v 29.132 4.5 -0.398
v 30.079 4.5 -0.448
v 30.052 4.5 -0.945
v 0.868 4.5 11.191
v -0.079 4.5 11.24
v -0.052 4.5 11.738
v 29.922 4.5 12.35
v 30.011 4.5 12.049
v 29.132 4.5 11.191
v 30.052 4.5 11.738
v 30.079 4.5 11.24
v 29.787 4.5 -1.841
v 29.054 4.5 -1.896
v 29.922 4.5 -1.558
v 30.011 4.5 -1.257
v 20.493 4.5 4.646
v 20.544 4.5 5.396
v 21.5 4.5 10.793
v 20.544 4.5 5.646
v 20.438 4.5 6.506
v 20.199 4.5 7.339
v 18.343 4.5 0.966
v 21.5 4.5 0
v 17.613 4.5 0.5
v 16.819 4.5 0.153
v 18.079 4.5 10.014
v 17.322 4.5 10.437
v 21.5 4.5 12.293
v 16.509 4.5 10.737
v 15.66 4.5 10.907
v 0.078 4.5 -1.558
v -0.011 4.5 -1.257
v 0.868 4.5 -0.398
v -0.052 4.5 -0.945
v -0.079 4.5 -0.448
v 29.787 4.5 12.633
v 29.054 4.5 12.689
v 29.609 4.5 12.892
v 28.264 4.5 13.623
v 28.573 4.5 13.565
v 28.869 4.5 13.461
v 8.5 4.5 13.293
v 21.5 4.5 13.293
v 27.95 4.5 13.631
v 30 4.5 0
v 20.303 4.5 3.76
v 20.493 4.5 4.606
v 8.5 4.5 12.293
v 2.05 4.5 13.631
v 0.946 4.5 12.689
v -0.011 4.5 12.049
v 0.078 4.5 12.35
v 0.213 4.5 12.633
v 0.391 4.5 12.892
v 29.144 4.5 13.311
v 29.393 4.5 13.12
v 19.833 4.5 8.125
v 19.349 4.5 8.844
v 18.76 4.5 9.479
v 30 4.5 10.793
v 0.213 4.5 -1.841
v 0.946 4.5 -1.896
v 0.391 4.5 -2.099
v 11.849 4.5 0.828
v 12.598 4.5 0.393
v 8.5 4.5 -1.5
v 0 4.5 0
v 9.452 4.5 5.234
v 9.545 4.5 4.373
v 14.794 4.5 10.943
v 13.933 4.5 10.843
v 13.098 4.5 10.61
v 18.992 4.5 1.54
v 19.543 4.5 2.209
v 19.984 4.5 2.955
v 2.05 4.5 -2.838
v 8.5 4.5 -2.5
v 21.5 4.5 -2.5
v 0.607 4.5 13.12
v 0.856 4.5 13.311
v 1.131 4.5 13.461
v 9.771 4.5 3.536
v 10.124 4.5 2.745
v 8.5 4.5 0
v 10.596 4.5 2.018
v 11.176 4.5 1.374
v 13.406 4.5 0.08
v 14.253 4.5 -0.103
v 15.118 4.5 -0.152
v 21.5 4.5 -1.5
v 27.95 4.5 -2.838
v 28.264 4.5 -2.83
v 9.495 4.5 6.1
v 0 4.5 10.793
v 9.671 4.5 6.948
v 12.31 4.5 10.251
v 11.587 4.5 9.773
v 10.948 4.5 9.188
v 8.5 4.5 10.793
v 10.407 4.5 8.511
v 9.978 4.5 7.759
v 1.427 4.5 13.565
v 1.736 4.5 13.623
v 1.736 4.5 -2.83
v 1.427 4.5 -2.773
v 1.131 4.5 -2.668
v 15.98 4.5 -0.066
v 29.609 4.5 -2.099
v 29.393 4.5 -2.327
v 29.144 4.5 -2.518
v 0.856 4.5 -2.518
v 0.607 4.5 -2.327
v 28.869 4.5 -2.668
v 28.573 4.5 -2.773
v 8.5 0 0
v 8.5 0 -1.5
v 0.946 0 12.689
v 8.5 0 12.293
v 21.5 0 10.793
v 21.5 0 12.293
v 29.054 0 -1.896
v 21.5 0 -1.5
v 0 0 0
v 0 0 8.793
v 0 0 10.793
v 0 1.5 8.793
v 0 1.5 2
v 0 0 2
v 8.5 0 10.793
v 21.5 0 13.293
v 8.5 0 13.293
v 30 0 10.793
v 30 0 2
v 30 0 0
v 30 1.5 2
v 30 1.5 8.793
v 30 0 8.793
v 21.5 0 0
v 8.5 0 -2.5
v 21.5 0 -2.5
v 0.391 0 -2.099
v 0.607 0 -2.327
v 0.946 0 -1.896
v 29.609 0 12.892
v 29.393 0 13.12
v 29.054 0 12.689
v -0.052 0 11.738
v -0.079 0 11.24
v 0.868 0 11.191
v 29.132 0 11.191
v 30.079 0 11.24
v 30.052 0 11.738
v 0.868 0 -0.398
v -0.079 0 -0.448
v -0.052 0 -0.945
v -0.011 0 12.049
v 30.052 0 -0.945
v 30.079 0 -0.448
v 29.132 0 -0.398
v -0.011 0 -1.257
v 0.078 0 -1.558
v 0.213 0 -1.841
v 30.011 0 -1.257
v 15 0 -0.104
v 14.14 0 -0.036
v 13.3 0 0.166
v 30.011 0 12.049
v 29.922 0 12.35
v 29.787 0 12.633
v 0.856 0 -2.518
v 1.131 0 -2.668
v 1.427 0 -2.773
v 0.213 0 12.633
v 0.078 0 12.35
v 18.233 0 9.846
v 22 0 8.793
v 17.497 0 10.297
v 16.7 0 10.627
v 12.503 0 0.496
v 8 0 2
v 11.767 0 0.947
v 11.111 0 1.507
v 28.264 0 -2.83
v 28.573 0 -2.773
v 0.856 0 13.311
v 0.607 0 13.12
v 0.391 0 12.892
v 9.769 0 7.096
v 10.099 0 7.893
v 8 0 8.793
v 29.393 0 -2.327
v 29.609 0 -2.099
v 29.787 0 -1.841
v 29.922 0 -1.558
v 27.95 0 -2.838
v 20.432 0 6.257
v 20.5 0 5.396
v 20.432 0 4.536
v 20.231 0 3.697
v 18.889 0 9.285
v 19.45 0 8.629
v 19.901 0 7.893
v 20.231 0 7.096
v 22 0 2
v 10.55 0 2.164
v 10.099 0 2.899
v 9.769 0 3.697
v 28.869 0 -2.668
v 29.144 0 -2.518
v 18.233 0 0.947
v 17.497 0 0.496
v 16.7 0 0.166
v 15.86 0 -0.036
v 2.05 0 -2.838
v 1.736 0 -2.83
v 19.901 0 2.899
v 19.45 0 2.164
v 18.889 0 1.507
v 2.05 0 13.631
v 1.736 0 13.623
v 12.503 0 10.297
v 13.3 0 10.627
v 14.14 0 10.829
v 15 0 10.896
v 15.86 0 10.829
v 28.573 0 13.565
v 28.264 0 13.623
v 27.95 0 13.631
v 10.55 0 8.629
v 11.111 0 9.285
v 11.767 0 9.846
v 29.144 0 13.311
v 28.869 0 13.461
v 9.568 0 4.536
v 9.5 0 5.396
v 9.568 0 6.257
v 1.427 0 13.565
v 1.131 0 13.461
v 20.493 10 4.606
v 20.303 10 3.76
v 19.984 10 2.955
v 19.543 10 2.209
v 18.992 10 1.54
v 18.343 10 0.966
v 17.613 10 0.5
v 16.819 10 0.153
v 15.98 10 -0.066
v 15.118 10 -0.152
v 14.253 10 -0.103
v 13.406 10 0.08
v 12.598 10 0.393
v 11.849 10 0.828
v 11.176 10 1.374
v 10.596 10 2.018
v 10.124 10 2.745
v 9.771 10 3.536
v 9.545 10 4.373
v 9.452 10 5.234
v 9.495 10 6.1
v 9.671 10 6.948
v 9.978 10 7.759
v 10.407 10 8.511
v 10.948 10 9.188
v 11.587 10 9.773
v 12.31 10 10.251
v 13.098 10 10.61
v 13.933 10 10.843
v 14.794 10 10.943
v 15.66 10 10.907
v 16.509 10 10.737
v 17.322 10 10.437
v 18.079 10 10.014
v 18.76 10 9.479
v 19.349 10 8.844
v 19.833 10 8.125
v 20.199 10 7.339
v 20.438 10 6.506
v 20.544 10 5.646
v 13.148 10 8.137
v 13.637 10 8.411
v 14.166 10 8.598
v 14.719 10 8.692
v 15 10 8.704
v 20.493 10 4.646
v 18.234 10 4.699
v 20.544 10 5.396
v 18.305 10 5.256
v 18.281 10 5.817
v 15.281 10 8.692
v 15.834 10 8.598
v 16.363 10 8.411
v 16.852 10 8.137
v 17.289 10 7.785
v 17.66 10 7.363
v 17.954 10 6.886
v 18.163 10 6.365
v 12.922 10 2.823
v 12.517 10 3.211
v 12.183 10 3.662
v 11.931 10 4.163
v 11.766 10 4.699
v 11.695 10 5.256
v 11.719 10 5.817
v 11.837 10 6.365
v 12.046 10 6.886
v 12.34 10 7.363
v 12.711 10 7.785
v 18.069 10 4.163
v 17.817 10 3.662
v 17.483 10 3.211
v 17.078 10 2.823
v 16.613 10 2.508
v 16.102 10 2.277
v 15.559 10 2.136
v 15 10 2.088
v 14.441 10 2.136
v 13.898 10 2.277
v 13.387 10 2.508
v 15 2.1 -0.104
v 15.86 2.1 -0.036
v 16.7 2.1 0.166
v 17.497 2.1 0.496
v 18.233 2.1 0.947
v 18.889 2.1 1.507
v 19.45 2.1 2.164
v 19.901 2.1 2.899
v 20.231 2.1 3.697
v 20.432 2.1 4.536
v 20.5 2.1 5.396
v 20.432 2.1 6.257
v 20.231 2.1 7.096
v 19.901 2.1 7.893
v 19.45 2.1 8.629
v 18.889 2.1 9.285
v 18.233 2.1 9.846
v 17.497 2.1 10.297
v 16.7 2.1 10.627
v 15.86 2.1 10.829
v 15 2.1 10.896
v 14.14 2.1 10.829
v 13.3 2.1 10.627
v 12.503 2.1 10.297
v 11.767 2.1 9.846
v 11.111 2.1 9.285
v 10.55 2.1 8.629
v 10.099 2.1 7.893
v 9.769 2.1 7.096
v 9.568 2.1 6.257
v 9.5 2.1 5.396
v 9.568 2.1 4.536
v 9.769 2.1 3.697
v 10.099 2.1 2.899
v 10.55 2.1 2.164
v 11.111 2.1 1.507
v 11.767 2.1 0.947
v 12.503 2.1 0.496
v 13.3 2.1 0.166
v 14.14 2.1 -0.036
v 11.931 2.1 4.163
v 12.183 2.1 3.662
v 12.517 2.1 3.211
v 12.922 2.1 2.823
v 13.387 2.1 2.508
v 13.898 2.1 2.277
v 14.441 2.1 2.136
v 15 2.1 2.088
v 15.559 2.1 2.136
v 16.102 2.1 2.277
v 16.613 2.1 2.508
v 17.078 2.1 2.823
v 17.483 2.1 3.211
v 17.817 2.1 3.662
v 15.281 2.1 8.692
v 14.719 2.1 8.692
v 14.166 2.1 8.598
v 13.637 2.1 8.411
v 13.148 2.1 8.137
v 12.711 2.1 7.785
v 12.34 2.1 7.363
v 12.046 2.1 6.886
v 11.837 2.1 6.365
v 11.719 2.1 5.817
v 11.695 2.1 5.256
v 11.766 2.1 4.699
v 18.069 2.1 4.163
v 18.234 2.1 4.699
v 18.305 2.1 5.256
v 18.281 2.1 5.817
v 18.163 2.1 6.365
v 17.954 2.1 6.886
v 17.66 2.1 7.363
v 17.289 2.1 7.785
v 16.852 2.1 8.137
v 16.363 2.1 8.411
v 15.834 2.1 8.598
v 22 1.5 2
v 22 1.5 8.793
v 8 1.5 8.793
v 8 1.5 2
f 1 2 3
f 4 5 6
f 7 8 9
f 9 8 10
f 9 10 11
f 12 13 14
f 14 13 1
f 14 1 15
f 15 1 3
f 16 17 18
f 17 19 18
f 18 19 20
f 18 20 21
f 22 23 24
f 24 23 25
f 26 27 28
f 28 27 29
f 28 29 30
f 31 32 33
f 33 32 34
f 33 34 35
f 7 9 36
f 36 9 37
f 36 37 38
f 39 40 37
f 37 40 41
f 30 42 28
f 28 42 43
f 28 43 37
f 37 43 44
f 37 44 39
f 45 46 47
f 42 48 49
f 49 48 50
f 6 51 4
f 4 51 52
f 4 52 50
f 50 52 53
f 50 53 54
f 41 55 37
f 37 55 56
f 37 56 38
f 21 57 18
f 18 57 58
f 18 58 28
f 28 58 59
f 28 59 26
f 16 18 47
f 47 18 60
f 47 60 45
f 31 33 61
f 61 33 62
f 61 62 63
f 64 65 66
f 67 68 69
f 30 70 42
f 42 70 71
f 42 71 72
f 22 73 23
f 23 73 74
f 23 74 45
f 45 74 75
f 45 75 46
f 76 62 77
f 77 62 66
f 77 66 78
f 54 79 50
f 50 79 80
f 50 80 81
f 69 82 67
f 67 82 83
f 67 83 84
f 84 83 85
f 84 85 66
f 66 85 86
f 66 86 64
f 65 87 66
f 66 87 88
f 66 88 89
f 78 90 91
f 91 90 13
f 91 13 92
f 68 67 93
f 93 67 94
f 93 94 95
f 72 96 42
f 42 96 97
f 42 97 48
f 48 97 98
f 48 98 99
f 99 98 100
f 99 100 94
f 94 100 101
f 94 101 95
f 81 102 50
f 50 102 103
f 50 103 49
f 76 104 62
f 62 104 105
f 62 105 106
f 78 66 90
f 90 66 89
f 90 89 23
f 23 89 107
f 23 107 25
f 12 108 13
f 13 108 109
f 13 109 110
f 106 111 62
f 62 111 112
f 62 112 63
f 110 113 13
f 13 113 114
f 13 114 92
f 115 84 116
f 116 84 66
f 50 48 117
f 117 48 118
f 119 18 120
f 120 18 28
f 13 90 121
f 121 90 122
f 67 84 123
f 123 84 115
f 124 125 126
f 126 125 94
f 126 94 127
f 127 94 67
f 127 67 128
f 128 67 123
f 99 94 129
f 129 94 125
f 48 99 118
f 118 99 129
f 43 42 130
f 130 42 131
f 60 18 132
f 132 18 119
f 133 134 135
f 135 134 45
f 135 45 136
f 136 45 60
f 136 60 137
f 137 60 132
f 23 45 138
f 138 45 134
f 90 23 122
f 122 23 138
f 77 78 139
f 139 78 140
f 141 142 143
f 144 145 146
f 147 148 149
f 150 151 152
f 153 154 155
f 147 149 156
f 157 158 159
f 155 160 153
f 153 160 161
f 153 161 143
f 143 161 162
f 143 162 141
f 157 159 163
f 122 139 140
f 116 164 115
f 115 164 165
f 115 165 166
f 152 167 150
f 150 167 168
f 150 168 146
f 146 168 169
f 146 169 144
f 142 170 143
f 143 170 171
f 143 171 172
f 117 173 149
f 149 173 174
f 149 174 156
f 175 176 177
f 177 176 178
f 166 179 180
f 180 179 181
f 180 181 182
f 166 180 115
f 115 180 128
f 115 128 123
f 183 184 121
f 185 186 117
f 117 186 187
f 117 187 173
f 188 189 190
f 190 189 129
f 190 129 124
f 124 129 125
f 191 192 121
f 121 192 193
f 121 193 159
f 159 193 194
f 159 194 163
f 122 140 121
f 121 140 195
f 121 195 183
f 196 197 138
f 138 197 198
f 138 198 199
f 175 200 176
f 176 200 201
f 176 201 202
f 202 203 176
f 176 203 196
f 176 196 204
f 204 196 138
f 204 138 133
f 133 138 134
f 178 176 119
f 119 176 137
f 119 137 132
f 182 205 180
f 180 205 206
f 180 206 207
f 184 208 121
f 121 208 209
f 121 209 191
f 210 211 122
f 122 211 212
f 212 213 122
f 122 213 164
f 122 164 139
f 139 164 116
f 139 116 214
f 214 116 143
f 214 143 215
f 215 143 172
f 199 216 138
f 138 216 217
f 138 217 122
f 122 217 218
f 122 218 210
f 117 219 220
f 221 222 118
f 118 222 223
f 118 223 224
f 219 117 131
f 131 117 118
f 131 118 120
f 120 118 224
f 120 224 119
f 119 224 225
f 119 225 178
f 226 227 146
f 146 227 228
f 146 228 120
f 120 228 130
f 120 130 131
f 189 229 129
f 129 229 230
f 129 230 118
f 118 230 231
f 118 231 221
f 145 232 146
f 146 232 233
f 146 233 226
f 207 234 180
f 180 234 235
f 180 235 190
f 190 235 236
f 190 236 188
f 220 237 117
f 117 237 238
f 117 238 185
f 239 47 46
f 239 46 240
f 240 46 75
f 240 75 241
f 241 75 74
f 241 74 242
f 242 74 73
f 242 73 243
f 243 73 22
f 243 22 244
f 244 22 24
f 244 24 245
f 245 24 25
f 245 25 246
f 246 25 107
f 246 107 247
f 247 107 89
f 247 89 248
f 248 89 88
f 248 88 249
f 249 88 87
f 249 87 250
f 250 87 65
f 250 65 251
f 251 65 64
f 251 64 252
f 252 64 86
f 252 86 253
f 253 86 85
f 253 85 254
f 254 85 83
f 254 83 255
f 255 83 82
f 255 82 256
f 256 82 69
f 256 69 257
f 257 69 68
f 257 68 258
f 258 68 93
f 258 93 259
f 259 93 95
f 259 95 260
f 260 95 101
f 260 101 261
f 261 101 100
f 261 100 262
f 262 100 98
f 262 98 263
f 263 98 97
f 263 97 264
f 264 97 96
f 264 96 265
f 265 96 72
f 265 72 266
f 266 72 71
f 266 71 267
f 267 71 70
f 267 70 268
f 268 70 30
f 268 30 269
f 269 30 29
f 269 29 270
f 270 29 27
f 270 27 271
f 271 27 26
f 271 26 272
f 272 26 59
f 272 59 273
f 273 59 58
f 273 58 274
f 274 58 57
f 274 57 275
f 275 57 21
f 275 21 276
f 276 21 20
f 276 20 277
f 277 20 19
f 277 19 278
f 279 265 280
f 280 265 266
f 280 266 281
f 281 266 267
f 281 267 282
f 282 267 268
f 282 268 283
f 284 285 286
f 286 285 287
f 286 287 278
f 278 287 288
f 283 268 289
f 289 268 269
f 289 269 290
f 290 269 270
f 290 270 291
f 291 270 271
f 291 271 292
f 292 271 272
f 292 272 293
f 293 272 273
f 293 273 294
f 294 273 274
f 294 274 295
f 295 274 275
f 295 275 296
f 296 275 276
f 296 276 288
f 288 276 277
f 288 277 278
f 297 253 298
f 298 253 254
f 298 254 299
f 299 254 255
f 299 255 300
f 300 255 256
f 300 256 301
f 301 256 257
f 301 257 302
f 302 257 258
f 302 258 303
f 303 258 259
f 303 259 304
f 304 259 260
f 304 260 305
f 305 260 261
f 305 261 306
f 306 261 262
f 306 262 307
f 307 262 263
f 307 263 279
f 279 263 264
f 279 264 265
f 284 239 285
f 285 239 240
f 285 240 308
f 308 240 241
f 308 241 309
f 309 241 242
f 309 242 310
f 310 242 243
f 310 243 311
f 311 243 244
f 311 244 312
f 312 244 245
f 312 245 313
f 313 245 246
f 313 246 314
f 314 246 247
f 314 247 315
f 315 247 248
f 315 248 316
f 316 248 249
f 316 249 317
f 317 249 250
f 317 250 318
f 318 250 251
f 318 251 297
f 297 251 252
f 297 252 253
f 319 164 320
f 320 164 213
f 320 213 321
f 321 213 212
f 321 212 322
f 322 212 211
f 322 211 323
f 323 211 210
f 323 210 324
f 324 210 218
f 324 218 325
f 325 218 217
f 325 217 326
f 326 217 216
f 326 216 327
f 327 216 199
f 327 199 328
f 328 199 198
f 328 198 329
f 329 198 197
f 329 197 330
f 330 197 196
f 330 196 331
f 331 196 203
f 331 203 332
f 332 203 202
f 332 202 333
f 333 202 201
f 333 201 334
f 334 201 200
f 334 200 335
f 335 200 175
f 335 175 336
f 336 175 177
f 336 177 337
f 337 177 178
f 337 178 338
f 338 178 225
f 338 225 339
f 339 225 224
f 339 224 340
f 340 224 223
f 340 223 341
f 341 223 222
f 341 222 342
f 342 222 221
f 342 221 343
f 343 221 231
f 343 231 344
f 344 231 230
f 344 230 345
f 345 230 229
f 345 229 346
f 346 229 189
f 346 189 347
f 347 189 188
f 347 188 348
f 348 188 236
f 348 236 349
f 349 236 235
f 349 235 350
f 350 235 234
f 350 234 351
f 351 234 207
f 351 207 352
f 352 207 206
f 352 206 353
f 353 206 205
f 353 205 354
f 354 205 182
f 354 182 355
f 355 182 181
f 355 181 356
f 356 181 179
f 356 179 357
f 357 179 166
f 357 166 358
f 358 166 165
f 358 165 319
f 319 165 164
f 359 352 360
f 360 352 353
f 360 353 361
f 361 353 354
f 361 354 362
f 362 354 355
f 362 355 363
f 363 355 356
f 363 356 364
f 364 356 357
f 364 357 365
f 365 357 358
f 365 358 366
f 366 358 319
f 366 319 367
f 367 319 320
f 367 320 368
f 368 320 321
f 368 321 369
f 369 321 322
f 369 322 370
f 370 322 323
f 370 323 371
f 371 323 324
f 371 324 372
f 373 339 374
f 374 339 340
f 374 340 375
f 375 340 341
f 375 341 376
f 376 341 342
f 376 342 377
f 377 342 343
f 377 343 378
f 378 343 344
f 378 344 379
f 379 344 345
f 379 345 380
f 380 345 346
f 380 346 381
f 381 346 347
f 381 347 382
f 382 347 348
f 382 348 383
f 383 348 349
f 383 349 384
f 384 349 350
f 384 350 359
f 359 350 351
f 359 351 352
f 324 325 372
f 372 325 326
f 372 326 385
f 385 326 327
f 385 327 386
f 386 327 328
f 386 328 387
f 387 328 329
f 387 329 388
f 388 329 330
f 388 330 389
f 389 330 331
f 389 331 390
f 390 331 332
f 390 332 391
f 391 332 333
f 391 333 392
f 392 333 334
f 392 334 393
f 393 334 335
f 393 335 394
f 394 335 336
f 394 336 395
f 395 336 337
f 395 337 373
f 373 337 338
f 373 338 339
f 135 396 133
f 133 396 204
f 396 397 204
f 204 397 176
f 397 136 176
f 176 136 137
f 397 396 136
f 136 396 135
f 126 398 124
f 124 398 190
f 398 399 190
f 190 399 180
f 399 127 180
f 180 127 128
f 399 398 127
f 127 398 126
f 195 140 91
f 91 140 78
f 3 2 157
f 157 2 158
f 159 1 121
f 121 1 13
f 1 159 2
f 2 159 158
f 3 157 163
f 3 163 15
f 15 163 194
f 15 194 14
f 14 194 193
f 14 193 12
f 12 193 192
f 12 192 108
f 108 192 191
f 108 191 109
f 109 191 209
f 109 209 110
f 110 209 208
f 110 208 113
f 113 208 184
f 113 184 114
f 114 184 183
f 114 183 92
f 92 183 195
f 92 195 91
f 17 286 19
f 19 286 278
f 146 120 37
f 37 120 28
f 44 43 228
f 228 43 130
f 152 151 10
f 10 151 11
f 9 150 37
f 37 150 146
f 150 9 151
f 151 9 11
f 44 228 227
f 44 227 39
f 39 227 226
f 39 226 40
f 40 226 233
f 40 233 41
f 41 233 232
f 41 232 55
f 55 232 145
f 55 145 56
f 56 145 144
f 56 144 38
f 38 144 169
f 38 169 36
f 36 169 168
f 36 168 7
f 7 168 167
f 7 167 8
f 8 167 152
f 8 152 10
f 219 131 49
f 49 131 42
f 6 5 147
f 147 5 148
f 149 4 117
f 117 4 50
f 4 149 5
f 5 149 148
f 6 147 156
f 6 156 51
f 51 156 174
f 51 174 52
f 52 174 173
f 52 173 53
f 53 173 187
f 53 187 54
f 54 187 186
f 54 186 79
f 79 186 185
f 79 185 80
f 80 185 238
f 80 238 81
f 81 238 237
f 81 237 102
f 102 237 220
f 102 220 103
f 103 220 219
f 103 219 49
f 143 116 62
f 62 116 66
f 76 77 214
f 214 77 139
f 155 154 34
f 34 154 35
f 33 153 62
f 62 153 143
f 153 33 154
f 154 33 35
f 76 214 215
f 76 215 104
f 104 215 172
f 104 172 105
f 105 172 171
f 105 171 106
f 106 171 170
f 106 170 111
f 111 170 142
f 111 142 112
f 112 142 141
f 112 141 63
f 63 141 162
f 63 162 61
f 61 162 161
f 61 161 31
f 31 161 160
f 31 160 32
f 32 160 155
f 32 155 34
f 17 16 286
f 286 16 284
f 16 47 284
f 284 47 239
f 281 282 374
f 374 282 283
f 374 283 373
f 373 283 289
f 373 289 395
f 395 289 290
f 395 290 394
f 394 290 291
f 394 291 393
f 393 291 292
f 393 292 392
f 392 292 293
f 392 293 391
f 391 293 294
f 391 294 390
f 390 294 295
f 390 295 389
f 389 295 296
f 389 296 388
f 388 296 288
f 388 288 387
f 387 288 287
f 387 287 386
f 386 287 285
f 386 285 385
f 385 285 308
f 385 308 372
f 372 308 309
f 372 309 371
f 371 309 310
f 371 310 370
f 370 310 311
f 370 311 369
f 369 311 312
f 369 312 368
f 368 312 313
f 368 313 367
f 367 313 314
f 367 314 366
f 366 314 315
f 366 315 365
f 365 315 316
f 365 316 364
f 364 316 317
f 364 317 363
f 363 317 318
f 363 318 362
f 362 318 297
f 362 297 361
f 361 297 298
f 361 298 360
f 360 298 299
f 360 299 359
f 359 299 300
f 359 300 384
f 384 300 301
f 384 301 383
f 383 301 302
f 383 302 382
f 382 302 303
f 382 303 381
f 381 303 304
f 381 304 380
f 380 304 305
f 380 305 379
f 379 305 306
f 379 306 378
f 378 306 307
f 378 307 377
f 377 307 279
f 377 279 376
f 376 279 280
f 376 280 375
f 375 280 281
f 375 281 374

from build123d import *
from build123d.topology import SkipClean

# Parameters (mm, degrees)
BOSS_EXTRU_1_DEPTH       = 4.5
BOSS_EXTRU_2_DEPTH       = 5.5
ENL_V_MAT_EXTRU_3_DEPTH  = 2.1
ENL_V_START              = -13.1
ESQUISSE7_R              = 3
ENL_V_MAT_EXTRU_4_DEPTH  = 13.1
ESQUISSE18_W             = 8
ESQUISSE18_H             = 6.792682927
ENL_V_MAT_EXTRU_5_DEPTH  = 1.5
ESQUISSE19_W             = 8
ESQUISSE19_H             = 6.792682927
ENL_V_MAT_EXTRU_6_DEPTH  = 1.5
BOSS_EXTRU_11_DEPTH      = 4.5
ESQUISSE25_W             = 0.947664044
ESQUISSE25_H             = 4.5
BOSS_EXTRU_12_DEPTH      = 1.5
CONG_16_R                = 2
BOSS_EXTRU_16_DEPTH      = 1
ENL_V_MAT_EXTRU_7_DEPTH  = 0.25
CONG_16_OF_SYM_TRIE4_R   = 2
SYM_TRIE5_DEPTH          = 4.5
ESQUISSE34_W             = 0.75
ESQUISSE34_H             = 11.333514389
ENL_V_MAT_EXTRU_10_DEPTH = 36
ESQUISSE35_R             = 5.54436651
ESQUISSE35_R_2           = 3
BOSS_EXTRU_19_DEPTH      = 5.5
ESQUISSE36_W             = 0.010434814
ESQUISSE36_H             = 5.5
ENL_V_MAT_EXTRU_11_DEPTH = 0.25
BOSS_EXTRU_20_DEPTH      = 5.5
ESQUISSE38_W             = 0.005685697
ESQUISSE38_H             = 5.5
ENL_V_MAT_EXTRU_12_DEPTH = 36
ESQUISSE39_R             = 3.307933445
ENL_V_MAT_EXTRU_13_DEPTH = 5.5
ENL_V_START_2            = -36
ESQUISSE40_R             = 3.307933445
ENL_V_MAT_EXTRU_14_DEPTH = 36


with BuildPart() as part:
    # Esquisse1 → Boss.-Extru.1 (new body)
    with BuildSketch(Plane(origin=(0, 0, 0), x_dir=(1, 0, 0), z_dir=(0, 1, 0))):
        Polygon((21.5, 0), (21.5, 2.5), (8.5, 2.5), (8.5, 0), (0, 0), (0, -10.792682927), (8.5, -10.792682927), (8.5, -13.292682927), (21.5, -13.292682927), (21.5, -10.792682927), (30, -10.792682927), (30, 0), align=None)
    extrude(amount=BOSS_EXTRU_1_DEPTH)

    # Esquisse2 → Boss.-Extru.2 (add)
    with BuildSketch(Plane(origin=(0, 4.5, 0), x_dir=(1, 0, 0), z_dir=(0, 1, 0))):
        with BuildLine():
            ThreePointArc((20.55, -5.396341463), (16.884536839, -0.176090425), (10.729812288, -1.851204385))
            Line((10.729812288, -1.851204385), (12.691790426, -3.480051151))
            ThreePointArc((12.691790426, -3.480051151), (16.018668562, -2.574584145), (18, -5.396341463))
            ThreePointArc((18, -5.396341463), (17.821757318, -6.415010025), (17.308209574, -7.312631776))
            Line((17.308209574, -7.312631776), (19.270187712, -8.941478542))
            ThreePointArc((19.270187712, -8.941478542), (20.220251038, -7.280878303), (20.55, -5.396341463))
        make_face()
        with BuildLine():
            Line((12.691790426, -3.480051151), (10.729812288, -1.851204385))
            ThreePointArc((10.729812288, -1.851204385), (11.454862922, -9.666529176), (19.270187712, -8.941478542))
            Line((19.270187712, -8.941478542), (17.308209574, -7.312631776))
            ThreePointArc((17.308209574, -7.312631776), (13.083709687, -7.704551038), (12.691790426, -3.480051151))
        make_face()
        with BuildLine():
            ThreePointArc((20.55, -5.396341463), (16.884536839, -0.176090425), (10.729812288, -1.851204385))
            Line((10.729812288, -1.851204385), (12.691790426, -3.480051151))
            ThreePointArc((12.691790426, -3.480051151), (16.018668562, -2.574584145), (18, -5.396341463))
            ThreePointArc((18, -5.396341463), (17.821757318, -6.415010025), (17.308209574, -7.312631776))
            Line((17.308209574, -7.312631776), (19.270187712, -8.941478542))
            ThreePointArc((19.270187712, -8.941478542), (20.220251038, -7.280878303), (20.55, -5.396341463))
        make_face()
        with BuildLine():
            Line((12.691790426, -3.480051151), (10.729812288, -1.851204385))
            ThreePointArc((10.729812288, -1.851204385), (11.454862922, -9.666529176), (19.270187712, -8.941478542))
            Line((19.270187712, -8.941478542), (17.308209574, -7.312631776))
            ThreePointArc((17.308209574, -7.312631776), (13.083709687, -7.704551038), (12.691790426, -3.480051151))
        make_face()
    extrude(amount=BOSS_EXTRU_2_DEPTH)

    # Esquisse5 → Enlèv. mat.-Extru.3 (cut)
    with BuildSketch(Plane.XZ):
        with BuildLine():
            ThreePointArc((20.5, 5.396341463), (16.86755903, 10.569563213), (10.768282447, 8.90954037))
            Line((10.768282447, 8.90954037), (19.231717553, 1.883142557))
            ThreePointArc((19.231717553, 1.883142557), (20.17322175, 3.528782433), (20.5, 5.396341463))
        make_face()
        with BuildLine():
            Line((19.231717553, 1.883142557), (10.768282447, 8.90954037))
            ThreePointArc((10.768282447, 8.90954037), (11.486801094, 1.164623911), (19.231717553, 1.883142557))
        make_face()
        with BuildLine():
            ThreePointArc((20.5, 5.396341463), (16.86755903, 10.569563213), (10.768282447, 8.90954037))
            Line((10.768282447, 8.90954037), (19.231717553, 1.883142557))
            ThreePointArc((19.231717553, 1.883142557), (20.17322175, 3.528782433), (20.5, 5.396341463))
        make_face()
        with BuildLine():
            Line((19.231717553, 1.883142557), (10.768282447, 8.90954037))
            ThreePointArc((10.768282447, 8.90954037), (11.486801094, 1.164623911), (19.231717553, 1.883142557))
        make_face()
    extrude(amount=-ENL_V_MAT_EXTRU_3_DEPTH, mode=Mode.SUBTRACT)

    # Esquisse7 → Enlèv. mat.-Extru.4 (cut)
    with BuildSketch(Plane(origin=(0, 4.5, 0), x_dir=(1, 0, 0), z_dir=(0, 1, 0)).offset(ENL_V_START)):
        with Locations(Location((15, -5.396341463, 0), (0, 0, 90))):
            Circle(ESQUISSE7_R)
    extrude(amount=ENL_V_MAT_EXTRU_4_DEPTH, mode=Mode.SUBTRACT)

    # Esquisse18 → Enlèv. mat.-Extru.5 (cut)
    with BuildSketch(Plane.XZ):
        with Locations((26, 5.396341464)):
            Rectangle(ESQUISSE18_W, ESQUISSE18_H)
    extrude(amount=-ENL_V_MAT_EXTRU_5_DEPTH, mode=Mode.SUBTRACT)

    # Esquisse19 → Enlèv. mat.-Extru.6 (cut)
    with BuildSketch(Plane.XZ):
        with Locations((4, 5.396341464)):
            Rectangle(ESQUISSE19_W, ESQUISSE19_H)
    extrude(amount=-ENL_V_MAT_EXTRU_6_DEPTH, mode=Mode.SUBTRACT)

    # Esquisse23 → Boss.-Extru.11 (add)
    with BuildSketch(Plane(origin=(0, 4.5, 0), x_dir=(1, 0, 0), z_dir=(0, 1, 0))):
        Polygon((21.5, 2.5), (30, 2.945466124), (30, 1.945466124), (21.5, 1.5), align=None)
    boss_extru_11 = extrude(amount=-BOSS_EXTRU_11_DEPTH)

    # Esquisse25 → Boss.-Extru.12 (add)
    with BuildSketch(Plane(origin=(-0.019506723, 0, -0.372210441), x_dir=(0.998629534754574, 0, -0.05233595624294039), z_dir=(0.05233595624294039, 0, 0.9986295347545742))):
        with Locations((29.586871851, 2.25)):
            Rectangle(ESQUISSE25_W, ESQUISSE25_H)
    boss_extru_12 = extrude(amount=BOSS_EXTRU_12_DEPTH)

    # Congé16
    cong_16_edges = [part.edges().sort_by_distance(p)[0] for p in [
        (30, 2.25, -2.945466124),
    ]]
    fillet(cong_16_edges, radius=CONG_16_R)

    # Esquisse3D3 → Boss.-Extru.16 (add)
    with SkipClean():  # the faces are left unmerged after this step: merging them gives an invalid solid
        with BuildSketch(Plane(origin=(15, 4.5, 5.646341463), x_dir=(0.9055110385022749, 0.42432270638104186, 1.6236855905047217e-15), z_dir=(0, 0, -1))):
            Polygon((0, 0), (21.900590549, 10.262622385), (26.709658048, 0), (4.809067498, -10.262622385), align=None)
        extrude(amount=BOSS_EXTRU_16_DEPTH)

    # Esquisse29 → Enlèv. mat.-Extru.7 (cut)
    with BuildSketch(Plane.XY.offset(5.646341463)):
        Polygon((17.989565186, 4.5), (17.989565186, 10), (20.54436651, 10), (20.54436651, 4.5), (30, 4.5), (39.185890197, 4.5), (39.185890197, 15.833514389), (15, 15.833514389), (15, 4.5), align=None)
    extrude(amount=-ENL_V_MAT_EXTRU_7_DEPTH, mode=Mode.SUBTRACT)

    # Symétrie4: Boss.-Extru.11, Boss.-Extru.12 across plane
    add(boss_extru_11.mirror(Plane.XY.offset(5.396341463)))
    add(boss_extru_12.mirror(Plane.XY.offset(5.396341463)))

    # Congé16 of Symétrie4
    cong_16_of_sym_trie4_edges = [part.edges().sort_by_distance(p)[0] for p in [
        (30, 2.25, 13.738149051),
    ]]
    fillet(cong_16_of_sym_trie4_edges, radius=CONG_16_OF_SYM_TRIE4_R)

    # Symétrie5: read off the stored shape, not the designer's step
    # Symétrie5 outline → Symétrie5 (add)
    with BuildSketch(Plane(origin=(0, 0, 0), x_dir=(1, 0, 0), z_dir=(0, 1, 0))):
        with BuildLine():
            Line((8.5, -13.292682927), (8.5, -12.292682927))
            Line((8.5, -12.292682927), (0.946365303, -12.688552147))
            Line((0.946365303, -12.688552147), (0.867861369, -11.190607845))
            Line((0.867861369, -11.190607845), (-0.078503934, -11.240204749))
            Line((-0.078503934, -11.240204749), (-0.052407681, -11.738150929))
            ThreePointArc((-0.052407681, -11.738150929), (0.606590176, -13.119768667), (2.049523301, -13.630738086))
            Line((2.049523301, -13.630738086), (8.5, -13.292682927))
        make_face()
        with BuildLine():
            Line((0.946365303, 1.89586922), (8.5, 1.5))
            Line((8.5, 1.5), (8.5, 2.5))
            Line((8.5, 2.5), (2.049523301, 2.838055159))
            ThreePointArc((2.049523301, 2.838055159), (0.606590176, 2.327085741), (-0.052407681, 0.945468002))
            Line((-0.052407681, 0.945468002), (-0.078503934, 0.447521822))
            Line((-0.078503934, 0.447521822), (0.867861369, 0.397924918))
            Line((0.867861369, 0.397924918), (0.946365303, 1.89586922))
        make_face()
    extrude(amount=SYM_TRIE5_DEPTH)

    # Esquisse34 → Enlèv. mat.-Extru.10 (cut)
    with SkipClean():  # the faces are left unmerged after this step: merging them gives an invalid solid
        with BuildSketch(Plane.ZY.offset(-15)):
            with Locations((5.021341463, 10.166757195)):
                Rectangle(ESQUISSE34_W, ESQUISSE34_H)
        extrude(amount=-ENL_V_MAT_EXTRU_10_DEPTH, mode=Mode.SUBTRACT)

    # Esquisse35 → Boss.-Extru.19 (add)
    with BuildSketch(Plane(origin=(0, 4.5, 0), x_dir=(1, 0, 0), z_dir=(0, 1, 0))):
        with Locations((15, -5.396341463)):
            Circle(ESQUISSE35_R)
        with Locations(Location((15, -5.396341463, 0), (0, 0, 90))):
            Circle(ESQUISSE35_R_2, mode=Mode.SUBTRACT)
    extrude(amount=BOSS_EXTRU_19_DEPTH)

    # Esquisse36 → Enlèv. mat.-Extru.11 (cut)
    with SkipClean():  # the faces are left unmerged after this step: merging them gives an invalid solid
        with BuildSketch(Plane(origin=(0, 0, 5.396341463), x_dir=(-1, 0, 0), z_dir=(0, 0, -1))):
            with Locations((-17.994782593, 7.25)):
                Rectangle(ESQUISSE36_W, ESQUISSE36_H)
        extrude(amount=-ENL_V_MAT_EXTRU_11_DEPTH, mode=Mode.SUBTRACT)

    # Esquisse37 → Boss.-Extru.20 (add)
    with SkipClean():  # the faces are left unmerged after this step: merging them gives an invalid solid
        with BuildSketch(Plane(origin=(0, 4.5, 0), x_dir=(1, 0, 0), z_dir=(0, 1, 0))):
            with BuildLine():
                Line((17.989565186, -5.646341463), (18, -5.646341463))
                Line((18, -5.646341463), (18, -5.396341463))
                ThreePointArc((18, -5.396341463), (17.997390161, -5.521450301), (17.989565186, -5.646341463))
            make_face()
        extrude(amount=BOSS_EXTRU_20_DEPTH)

    # Esquisse38 → Enlèv. mat.-Extru.12 (cut)
    with SkipClean():  # the faces are left unmerged after this step: merging them gives an invalid solid
        with BuildSketch(Plane.XY.offset(4.646341463)):
            with Locations((20.496247985, 7.25)):
                Rectangle(ESQUISSE38_W, ESQUISSE38_H)
        extrude(amount=-ENL_V_MAT_EXTRU_12_DEPTH, mode=Mode.SUBTRACT)

    # Esquisse39 → Enlèv. mat.-Extru.13 (cut)
    with BuildSketch(Plane(origin=(0, 4.5, 0), x_dir=(1, 0, 0), z_dir=(0, 1, 0))):
        with Locations(Location((15, -5.396341463, 0), (0, 0, 270))):
            Circle(ESQUISSE39_R)
    extrude(amount=ENL_V_MAT_EXTRU_13_DEPTH, mode=Mode.SUBTRACT)

    # Esquisse40 → Enlèv. mat.-Extru.14 (cut)
    with BuildSketch(Plane(origin=(0, 4.5, 0), x_dir=(1, 0, 0), z_dir=(0, 1, 0)).offset(ENL_V_START_2)):
        with Locations(Location((15, -5.396341463, 0), (0, 0, 90))):
            Circle(ESQUISSE40_R)
    extrude(amount=ENL_V_MAT_EXTRU_14_DEPTH, mode=Mode.SUBTRACT)


solid = part.part
